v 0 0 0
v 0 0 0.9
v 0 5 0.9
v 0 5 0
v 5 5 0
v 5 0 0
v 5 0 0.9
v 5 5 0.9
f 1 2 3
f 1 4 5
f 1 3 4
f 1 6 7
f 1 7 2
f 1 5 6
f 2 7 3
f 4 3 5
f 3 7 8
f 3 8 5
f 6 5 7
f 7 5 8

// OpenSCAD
/* Warning, this is a very basic generator with a lot of approximation 
input data : [VQFN, P5A, 5x5x0.9mm, 32, , A, C04-01205A]
generated by com.zoubworld.electronics.cad.model3d.Basic
Date : Sun Feb 15 10:50:49 CET 2026
*/

//body
color("black")
translate([0,0,0])
cube([5.0,5.0,0.9], center=false);
